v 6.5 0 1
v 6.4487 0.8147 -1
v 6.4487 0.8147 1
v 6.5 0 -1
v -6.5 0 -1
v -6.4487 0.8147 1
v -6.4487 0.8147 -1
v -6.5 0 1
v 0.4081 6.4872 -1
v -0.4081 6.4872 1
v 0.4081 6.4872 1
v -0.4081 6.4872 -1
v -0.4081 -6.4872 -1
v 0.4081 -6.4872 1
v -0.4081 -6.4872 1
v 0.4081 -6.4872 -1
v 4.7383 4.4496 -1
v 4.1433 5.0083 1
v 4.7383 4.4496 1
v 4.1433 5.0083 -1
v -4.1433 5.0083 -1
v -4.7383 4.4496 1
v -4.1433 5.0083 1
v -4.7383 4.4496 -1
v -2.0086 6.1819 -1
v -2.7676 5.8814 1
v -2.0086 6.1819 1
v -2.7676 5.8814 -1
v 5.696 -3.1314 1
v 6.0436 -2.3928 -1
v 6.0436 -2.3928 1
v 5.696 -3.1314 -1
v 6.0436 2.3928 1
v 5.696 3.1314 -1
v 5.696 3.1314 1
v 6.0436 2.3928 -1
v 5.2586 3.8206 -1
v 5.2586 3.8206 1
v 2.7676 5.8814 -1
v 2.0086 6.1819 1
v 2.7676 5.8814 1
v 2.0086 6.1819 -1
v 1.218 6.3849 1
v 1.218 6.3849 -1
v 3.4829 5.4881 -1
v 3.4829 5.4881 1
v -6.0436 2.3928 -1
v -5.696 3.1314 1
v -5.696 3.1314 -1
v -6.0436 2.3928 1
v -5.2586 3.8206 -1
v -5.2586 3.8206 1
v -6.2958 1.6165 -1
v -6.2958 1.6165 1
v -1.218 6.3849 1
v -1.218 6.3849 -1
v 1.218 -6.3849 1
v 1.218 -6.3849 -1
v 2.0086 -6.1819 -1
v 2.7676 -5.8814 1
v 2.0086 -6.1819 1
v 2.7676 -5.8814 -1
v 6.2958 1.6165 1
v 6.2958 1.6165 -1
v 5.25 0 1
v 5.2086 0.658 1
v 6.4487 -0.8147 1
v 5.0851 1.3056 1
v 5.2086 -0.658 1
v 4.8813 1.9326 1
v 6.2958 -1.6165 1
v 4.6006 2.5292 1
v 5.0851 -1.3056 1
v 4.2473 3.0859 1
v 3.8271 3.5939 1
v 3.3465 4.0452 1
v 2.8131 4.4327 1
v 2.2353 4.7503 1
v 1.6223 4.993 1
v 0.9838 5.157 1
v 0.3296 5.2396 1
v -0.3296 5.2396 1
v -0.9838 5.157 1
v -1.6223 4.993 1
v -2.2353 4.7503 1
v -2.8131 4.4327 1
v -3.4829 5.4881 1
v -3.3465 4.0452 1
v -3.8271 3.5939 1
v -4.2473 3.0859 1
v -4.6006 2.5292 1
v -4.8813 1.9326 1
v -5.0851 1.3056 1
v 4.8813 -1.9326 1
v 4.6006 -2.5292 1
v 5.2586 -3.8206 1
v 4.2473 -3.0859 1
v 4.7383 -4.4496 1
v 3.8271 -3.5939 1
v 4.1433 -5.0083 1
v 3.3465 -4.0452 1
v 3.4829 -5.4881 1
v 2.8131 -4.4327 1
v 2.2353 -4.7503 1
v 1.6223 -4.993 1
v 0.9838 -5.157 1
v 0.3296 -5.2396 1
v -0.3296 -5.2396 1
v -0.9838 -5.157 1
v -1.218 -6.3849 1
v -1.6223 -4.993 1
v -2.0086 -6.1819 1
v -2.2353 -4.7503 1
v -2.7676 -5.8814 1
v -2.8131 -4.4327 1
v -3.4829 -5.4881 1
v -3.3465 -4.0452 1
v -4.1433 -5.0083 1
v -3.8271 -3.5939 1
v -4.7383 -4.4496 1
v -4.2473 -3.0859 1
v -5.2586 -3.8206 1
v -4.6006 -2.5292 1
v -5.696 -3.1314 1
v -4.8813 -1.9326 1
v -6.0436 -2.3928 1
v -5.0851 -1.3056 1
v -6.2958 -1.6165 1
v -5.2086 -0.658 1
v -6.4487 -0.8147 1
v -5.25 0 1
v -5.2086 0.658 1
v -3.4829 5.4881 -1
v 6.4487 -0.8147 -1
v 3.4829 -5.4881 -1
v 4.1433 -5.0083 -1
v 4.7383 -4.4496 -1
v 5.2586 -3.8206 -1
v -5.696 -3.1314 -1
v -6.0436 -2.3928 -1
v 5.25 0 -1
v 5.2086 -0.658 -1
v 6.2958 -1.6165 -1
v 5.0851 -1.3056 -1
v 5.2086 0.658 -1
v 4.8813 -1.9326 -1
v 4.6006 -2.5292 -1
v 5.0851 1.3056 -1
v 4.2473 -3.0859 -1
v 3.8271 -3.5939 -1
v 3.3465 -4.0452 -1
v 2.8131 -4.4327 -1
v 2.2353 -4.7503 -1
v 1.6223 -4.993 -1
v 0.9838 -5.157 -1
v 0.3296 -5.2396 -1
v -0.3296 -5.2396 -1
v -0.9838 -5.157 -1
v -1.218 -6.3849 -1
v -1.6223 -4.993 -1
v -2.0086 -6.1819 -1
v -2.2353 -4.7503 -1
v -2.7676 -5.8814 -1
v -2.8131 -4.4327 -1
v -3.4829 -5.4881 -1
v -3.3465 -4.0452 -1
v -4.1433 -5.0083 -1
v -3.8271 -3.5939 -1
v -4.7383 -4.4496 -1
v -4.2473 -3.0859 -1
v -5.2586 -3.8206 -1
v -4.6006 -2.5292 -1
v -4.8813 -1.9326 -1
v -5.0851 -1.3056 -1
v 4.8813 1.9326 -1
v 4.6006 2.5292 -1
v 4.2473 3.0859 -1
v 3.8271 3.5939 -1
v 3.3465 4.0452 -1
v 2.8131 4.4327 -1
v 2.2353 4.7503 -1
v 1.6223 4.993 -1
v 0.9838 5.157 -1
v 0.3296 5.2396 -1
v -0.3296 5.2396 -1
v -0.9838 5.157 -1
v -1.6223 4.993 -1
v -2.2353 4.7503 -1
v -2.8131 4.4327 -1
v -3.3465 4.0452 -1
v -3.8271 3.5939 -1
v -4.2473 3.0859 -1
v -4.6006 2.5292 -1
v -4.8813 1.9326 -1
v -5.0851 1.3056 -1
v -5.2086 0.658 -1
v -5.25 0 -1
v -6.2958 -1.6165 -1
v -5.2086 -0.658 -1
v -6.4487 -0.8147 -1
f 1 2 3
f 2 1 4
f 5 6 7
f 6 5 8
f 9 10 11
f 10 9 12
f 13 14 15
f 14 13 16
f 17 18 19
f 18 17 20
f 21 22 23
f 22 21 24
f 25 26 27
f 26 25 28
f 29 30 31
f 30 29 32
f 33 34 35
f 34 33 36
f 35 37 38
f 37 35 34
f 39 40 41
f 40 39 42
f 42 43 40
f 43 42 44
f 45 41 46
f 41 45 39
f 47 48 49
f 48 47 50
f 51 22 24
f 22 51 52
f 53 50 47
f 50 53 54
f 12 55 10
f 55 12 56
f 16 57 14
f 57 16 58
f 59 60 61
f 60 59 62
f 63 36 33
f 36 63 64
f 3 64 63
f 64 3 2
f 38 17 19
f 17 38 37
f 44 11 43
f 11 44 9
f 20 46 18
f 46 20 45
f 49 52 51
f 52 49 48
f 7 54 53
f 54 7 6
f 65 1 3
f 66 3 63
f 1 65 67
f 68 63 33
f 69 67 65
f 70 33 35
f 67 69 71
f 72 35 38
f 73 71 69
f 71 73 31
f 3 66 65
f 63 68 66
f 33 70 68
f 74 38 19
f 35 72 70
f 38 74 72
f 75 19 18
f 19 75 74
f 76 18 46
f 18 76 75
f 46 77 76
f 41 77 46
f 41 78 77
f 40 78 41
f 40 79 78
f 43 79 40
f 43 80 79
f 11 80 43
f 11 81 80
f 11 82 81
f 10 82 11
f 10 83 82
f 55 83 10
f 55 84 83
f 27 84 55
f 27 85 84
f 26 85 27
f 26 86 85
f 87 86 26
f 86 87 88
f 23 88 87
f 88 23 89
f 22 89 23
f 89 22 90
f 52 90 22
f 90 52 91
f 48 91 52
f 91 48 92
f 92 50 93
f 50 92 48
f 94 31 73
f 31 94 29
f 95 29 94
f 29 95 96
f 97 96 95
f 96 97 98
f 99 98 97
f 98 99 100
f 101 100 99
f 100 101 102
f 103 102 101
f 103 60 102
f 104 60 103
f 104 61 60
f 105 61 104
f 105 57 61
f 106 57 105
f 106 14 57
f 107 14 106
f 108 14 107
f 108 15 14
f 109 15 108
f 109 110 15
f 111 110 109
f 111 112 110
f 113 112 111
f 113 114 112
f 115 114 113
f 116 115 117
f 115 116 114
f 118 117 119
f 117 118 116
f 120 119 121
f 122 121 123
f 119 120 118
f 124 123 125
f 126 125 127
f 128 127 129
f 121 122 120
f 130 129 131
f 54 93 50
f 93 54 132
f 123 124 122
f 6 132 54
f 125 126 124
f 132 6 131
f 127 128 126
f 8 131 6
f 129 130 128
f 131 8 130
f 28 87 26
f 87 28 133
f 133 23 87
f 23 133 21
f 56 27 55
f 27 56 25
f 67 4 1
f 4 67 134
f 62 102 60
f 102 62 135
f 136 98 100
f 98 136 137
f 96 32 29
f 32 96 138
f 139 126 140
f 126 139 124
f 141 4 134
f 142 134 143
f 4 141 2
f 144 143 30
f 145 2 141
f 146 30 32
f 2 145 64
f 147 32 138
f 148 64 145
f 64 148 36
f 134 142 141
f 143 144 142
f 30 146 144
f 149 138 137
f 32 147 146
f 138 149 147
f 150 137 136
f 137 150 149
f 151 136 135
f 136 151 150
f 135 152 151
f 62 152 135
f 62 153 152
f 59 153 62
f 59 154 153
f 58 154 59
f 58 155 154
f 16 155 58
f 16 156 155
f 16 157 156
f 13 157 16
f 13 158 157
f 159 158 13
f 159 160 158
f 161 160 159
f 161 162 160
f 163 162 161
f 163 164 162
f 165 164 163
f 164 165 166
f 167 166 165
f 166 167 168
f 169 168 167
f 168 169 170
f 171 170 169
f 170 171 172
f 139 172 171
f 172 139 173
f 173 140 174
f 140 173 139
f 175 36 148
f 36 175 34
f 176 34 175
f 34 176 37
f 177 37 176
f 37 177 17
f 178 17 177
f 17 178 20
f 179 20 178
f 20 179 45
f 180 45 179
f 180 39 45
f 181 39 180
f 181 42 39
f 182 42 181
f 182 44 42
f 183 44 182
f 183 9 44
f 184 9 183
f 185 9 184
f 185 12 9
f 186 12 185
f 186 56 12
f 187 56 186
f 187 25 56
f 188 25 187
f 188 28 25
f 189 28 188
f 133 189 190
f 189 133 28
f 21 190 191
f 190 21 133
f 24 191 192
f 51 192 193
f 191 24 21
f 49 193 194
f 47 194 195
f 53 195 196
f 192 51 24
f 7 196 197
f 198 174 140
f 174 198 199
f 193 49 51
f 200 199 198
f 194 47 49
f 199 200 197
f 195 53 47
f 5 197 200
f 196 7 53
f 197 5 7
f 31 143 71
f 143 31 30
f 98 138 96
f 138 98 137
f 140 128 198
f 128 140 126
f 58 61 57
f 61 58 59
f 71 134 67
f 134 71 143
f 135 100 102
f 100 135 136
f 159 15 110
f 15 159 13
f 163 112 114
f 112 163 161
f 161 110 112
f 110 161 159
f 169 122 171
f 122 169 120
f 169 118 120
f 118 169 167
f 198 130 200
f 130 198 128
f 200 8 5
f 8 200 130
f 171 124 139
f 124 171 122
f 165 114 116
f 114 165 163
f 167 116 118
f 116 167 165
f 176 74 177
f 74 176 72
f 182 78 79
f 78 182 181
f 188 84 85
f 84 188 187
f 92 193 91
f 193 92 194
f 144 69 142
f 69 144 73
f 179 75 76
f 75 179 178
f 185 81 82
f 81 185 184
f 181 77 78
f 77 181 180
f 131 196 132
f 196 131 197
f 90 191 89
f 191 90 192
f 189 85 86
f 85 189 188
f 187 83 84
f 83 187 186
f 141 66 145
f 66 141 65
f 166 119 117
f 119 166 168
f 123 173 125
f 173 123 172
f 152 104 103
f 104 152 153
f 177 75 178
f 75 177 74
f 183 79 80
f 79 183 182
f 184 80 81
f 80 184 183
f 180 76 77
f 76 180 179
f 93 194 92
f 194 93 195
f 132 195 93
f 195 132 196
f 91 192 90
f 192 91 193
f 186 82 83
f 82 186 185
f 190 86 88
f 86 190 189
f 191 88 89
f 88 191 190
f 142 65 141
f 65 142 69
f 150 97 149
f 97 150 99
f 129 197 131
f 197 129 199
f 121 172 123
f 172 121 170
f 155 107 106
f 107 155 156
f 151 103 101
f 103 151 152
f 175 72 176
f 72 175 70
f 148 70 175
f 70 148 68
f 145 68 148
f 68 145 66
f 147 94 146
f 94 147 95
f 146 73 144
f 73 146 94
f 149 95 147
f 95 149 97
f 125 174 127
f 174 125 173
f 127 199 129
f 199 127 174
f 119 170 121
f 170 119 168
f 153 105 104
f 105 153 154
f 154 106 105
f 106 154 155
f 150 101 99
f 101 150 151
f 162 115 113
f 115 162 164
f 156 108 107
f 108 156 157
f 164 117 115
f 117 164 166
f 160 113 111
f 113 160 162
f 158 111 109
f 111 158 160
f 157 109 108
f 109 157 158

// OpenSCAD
$fn = 50;


difference() {
	union() {
		translate(v = [0, 0, -1.0000000000]) {
			cylinder(h = 2, r = 6.5000000000);
		}
	}
	union() {
		translate(v = [0, 0, -100.0000000000]) {
			cylinder(h = 200, r = 5.2500000000);
		}
	}
}
